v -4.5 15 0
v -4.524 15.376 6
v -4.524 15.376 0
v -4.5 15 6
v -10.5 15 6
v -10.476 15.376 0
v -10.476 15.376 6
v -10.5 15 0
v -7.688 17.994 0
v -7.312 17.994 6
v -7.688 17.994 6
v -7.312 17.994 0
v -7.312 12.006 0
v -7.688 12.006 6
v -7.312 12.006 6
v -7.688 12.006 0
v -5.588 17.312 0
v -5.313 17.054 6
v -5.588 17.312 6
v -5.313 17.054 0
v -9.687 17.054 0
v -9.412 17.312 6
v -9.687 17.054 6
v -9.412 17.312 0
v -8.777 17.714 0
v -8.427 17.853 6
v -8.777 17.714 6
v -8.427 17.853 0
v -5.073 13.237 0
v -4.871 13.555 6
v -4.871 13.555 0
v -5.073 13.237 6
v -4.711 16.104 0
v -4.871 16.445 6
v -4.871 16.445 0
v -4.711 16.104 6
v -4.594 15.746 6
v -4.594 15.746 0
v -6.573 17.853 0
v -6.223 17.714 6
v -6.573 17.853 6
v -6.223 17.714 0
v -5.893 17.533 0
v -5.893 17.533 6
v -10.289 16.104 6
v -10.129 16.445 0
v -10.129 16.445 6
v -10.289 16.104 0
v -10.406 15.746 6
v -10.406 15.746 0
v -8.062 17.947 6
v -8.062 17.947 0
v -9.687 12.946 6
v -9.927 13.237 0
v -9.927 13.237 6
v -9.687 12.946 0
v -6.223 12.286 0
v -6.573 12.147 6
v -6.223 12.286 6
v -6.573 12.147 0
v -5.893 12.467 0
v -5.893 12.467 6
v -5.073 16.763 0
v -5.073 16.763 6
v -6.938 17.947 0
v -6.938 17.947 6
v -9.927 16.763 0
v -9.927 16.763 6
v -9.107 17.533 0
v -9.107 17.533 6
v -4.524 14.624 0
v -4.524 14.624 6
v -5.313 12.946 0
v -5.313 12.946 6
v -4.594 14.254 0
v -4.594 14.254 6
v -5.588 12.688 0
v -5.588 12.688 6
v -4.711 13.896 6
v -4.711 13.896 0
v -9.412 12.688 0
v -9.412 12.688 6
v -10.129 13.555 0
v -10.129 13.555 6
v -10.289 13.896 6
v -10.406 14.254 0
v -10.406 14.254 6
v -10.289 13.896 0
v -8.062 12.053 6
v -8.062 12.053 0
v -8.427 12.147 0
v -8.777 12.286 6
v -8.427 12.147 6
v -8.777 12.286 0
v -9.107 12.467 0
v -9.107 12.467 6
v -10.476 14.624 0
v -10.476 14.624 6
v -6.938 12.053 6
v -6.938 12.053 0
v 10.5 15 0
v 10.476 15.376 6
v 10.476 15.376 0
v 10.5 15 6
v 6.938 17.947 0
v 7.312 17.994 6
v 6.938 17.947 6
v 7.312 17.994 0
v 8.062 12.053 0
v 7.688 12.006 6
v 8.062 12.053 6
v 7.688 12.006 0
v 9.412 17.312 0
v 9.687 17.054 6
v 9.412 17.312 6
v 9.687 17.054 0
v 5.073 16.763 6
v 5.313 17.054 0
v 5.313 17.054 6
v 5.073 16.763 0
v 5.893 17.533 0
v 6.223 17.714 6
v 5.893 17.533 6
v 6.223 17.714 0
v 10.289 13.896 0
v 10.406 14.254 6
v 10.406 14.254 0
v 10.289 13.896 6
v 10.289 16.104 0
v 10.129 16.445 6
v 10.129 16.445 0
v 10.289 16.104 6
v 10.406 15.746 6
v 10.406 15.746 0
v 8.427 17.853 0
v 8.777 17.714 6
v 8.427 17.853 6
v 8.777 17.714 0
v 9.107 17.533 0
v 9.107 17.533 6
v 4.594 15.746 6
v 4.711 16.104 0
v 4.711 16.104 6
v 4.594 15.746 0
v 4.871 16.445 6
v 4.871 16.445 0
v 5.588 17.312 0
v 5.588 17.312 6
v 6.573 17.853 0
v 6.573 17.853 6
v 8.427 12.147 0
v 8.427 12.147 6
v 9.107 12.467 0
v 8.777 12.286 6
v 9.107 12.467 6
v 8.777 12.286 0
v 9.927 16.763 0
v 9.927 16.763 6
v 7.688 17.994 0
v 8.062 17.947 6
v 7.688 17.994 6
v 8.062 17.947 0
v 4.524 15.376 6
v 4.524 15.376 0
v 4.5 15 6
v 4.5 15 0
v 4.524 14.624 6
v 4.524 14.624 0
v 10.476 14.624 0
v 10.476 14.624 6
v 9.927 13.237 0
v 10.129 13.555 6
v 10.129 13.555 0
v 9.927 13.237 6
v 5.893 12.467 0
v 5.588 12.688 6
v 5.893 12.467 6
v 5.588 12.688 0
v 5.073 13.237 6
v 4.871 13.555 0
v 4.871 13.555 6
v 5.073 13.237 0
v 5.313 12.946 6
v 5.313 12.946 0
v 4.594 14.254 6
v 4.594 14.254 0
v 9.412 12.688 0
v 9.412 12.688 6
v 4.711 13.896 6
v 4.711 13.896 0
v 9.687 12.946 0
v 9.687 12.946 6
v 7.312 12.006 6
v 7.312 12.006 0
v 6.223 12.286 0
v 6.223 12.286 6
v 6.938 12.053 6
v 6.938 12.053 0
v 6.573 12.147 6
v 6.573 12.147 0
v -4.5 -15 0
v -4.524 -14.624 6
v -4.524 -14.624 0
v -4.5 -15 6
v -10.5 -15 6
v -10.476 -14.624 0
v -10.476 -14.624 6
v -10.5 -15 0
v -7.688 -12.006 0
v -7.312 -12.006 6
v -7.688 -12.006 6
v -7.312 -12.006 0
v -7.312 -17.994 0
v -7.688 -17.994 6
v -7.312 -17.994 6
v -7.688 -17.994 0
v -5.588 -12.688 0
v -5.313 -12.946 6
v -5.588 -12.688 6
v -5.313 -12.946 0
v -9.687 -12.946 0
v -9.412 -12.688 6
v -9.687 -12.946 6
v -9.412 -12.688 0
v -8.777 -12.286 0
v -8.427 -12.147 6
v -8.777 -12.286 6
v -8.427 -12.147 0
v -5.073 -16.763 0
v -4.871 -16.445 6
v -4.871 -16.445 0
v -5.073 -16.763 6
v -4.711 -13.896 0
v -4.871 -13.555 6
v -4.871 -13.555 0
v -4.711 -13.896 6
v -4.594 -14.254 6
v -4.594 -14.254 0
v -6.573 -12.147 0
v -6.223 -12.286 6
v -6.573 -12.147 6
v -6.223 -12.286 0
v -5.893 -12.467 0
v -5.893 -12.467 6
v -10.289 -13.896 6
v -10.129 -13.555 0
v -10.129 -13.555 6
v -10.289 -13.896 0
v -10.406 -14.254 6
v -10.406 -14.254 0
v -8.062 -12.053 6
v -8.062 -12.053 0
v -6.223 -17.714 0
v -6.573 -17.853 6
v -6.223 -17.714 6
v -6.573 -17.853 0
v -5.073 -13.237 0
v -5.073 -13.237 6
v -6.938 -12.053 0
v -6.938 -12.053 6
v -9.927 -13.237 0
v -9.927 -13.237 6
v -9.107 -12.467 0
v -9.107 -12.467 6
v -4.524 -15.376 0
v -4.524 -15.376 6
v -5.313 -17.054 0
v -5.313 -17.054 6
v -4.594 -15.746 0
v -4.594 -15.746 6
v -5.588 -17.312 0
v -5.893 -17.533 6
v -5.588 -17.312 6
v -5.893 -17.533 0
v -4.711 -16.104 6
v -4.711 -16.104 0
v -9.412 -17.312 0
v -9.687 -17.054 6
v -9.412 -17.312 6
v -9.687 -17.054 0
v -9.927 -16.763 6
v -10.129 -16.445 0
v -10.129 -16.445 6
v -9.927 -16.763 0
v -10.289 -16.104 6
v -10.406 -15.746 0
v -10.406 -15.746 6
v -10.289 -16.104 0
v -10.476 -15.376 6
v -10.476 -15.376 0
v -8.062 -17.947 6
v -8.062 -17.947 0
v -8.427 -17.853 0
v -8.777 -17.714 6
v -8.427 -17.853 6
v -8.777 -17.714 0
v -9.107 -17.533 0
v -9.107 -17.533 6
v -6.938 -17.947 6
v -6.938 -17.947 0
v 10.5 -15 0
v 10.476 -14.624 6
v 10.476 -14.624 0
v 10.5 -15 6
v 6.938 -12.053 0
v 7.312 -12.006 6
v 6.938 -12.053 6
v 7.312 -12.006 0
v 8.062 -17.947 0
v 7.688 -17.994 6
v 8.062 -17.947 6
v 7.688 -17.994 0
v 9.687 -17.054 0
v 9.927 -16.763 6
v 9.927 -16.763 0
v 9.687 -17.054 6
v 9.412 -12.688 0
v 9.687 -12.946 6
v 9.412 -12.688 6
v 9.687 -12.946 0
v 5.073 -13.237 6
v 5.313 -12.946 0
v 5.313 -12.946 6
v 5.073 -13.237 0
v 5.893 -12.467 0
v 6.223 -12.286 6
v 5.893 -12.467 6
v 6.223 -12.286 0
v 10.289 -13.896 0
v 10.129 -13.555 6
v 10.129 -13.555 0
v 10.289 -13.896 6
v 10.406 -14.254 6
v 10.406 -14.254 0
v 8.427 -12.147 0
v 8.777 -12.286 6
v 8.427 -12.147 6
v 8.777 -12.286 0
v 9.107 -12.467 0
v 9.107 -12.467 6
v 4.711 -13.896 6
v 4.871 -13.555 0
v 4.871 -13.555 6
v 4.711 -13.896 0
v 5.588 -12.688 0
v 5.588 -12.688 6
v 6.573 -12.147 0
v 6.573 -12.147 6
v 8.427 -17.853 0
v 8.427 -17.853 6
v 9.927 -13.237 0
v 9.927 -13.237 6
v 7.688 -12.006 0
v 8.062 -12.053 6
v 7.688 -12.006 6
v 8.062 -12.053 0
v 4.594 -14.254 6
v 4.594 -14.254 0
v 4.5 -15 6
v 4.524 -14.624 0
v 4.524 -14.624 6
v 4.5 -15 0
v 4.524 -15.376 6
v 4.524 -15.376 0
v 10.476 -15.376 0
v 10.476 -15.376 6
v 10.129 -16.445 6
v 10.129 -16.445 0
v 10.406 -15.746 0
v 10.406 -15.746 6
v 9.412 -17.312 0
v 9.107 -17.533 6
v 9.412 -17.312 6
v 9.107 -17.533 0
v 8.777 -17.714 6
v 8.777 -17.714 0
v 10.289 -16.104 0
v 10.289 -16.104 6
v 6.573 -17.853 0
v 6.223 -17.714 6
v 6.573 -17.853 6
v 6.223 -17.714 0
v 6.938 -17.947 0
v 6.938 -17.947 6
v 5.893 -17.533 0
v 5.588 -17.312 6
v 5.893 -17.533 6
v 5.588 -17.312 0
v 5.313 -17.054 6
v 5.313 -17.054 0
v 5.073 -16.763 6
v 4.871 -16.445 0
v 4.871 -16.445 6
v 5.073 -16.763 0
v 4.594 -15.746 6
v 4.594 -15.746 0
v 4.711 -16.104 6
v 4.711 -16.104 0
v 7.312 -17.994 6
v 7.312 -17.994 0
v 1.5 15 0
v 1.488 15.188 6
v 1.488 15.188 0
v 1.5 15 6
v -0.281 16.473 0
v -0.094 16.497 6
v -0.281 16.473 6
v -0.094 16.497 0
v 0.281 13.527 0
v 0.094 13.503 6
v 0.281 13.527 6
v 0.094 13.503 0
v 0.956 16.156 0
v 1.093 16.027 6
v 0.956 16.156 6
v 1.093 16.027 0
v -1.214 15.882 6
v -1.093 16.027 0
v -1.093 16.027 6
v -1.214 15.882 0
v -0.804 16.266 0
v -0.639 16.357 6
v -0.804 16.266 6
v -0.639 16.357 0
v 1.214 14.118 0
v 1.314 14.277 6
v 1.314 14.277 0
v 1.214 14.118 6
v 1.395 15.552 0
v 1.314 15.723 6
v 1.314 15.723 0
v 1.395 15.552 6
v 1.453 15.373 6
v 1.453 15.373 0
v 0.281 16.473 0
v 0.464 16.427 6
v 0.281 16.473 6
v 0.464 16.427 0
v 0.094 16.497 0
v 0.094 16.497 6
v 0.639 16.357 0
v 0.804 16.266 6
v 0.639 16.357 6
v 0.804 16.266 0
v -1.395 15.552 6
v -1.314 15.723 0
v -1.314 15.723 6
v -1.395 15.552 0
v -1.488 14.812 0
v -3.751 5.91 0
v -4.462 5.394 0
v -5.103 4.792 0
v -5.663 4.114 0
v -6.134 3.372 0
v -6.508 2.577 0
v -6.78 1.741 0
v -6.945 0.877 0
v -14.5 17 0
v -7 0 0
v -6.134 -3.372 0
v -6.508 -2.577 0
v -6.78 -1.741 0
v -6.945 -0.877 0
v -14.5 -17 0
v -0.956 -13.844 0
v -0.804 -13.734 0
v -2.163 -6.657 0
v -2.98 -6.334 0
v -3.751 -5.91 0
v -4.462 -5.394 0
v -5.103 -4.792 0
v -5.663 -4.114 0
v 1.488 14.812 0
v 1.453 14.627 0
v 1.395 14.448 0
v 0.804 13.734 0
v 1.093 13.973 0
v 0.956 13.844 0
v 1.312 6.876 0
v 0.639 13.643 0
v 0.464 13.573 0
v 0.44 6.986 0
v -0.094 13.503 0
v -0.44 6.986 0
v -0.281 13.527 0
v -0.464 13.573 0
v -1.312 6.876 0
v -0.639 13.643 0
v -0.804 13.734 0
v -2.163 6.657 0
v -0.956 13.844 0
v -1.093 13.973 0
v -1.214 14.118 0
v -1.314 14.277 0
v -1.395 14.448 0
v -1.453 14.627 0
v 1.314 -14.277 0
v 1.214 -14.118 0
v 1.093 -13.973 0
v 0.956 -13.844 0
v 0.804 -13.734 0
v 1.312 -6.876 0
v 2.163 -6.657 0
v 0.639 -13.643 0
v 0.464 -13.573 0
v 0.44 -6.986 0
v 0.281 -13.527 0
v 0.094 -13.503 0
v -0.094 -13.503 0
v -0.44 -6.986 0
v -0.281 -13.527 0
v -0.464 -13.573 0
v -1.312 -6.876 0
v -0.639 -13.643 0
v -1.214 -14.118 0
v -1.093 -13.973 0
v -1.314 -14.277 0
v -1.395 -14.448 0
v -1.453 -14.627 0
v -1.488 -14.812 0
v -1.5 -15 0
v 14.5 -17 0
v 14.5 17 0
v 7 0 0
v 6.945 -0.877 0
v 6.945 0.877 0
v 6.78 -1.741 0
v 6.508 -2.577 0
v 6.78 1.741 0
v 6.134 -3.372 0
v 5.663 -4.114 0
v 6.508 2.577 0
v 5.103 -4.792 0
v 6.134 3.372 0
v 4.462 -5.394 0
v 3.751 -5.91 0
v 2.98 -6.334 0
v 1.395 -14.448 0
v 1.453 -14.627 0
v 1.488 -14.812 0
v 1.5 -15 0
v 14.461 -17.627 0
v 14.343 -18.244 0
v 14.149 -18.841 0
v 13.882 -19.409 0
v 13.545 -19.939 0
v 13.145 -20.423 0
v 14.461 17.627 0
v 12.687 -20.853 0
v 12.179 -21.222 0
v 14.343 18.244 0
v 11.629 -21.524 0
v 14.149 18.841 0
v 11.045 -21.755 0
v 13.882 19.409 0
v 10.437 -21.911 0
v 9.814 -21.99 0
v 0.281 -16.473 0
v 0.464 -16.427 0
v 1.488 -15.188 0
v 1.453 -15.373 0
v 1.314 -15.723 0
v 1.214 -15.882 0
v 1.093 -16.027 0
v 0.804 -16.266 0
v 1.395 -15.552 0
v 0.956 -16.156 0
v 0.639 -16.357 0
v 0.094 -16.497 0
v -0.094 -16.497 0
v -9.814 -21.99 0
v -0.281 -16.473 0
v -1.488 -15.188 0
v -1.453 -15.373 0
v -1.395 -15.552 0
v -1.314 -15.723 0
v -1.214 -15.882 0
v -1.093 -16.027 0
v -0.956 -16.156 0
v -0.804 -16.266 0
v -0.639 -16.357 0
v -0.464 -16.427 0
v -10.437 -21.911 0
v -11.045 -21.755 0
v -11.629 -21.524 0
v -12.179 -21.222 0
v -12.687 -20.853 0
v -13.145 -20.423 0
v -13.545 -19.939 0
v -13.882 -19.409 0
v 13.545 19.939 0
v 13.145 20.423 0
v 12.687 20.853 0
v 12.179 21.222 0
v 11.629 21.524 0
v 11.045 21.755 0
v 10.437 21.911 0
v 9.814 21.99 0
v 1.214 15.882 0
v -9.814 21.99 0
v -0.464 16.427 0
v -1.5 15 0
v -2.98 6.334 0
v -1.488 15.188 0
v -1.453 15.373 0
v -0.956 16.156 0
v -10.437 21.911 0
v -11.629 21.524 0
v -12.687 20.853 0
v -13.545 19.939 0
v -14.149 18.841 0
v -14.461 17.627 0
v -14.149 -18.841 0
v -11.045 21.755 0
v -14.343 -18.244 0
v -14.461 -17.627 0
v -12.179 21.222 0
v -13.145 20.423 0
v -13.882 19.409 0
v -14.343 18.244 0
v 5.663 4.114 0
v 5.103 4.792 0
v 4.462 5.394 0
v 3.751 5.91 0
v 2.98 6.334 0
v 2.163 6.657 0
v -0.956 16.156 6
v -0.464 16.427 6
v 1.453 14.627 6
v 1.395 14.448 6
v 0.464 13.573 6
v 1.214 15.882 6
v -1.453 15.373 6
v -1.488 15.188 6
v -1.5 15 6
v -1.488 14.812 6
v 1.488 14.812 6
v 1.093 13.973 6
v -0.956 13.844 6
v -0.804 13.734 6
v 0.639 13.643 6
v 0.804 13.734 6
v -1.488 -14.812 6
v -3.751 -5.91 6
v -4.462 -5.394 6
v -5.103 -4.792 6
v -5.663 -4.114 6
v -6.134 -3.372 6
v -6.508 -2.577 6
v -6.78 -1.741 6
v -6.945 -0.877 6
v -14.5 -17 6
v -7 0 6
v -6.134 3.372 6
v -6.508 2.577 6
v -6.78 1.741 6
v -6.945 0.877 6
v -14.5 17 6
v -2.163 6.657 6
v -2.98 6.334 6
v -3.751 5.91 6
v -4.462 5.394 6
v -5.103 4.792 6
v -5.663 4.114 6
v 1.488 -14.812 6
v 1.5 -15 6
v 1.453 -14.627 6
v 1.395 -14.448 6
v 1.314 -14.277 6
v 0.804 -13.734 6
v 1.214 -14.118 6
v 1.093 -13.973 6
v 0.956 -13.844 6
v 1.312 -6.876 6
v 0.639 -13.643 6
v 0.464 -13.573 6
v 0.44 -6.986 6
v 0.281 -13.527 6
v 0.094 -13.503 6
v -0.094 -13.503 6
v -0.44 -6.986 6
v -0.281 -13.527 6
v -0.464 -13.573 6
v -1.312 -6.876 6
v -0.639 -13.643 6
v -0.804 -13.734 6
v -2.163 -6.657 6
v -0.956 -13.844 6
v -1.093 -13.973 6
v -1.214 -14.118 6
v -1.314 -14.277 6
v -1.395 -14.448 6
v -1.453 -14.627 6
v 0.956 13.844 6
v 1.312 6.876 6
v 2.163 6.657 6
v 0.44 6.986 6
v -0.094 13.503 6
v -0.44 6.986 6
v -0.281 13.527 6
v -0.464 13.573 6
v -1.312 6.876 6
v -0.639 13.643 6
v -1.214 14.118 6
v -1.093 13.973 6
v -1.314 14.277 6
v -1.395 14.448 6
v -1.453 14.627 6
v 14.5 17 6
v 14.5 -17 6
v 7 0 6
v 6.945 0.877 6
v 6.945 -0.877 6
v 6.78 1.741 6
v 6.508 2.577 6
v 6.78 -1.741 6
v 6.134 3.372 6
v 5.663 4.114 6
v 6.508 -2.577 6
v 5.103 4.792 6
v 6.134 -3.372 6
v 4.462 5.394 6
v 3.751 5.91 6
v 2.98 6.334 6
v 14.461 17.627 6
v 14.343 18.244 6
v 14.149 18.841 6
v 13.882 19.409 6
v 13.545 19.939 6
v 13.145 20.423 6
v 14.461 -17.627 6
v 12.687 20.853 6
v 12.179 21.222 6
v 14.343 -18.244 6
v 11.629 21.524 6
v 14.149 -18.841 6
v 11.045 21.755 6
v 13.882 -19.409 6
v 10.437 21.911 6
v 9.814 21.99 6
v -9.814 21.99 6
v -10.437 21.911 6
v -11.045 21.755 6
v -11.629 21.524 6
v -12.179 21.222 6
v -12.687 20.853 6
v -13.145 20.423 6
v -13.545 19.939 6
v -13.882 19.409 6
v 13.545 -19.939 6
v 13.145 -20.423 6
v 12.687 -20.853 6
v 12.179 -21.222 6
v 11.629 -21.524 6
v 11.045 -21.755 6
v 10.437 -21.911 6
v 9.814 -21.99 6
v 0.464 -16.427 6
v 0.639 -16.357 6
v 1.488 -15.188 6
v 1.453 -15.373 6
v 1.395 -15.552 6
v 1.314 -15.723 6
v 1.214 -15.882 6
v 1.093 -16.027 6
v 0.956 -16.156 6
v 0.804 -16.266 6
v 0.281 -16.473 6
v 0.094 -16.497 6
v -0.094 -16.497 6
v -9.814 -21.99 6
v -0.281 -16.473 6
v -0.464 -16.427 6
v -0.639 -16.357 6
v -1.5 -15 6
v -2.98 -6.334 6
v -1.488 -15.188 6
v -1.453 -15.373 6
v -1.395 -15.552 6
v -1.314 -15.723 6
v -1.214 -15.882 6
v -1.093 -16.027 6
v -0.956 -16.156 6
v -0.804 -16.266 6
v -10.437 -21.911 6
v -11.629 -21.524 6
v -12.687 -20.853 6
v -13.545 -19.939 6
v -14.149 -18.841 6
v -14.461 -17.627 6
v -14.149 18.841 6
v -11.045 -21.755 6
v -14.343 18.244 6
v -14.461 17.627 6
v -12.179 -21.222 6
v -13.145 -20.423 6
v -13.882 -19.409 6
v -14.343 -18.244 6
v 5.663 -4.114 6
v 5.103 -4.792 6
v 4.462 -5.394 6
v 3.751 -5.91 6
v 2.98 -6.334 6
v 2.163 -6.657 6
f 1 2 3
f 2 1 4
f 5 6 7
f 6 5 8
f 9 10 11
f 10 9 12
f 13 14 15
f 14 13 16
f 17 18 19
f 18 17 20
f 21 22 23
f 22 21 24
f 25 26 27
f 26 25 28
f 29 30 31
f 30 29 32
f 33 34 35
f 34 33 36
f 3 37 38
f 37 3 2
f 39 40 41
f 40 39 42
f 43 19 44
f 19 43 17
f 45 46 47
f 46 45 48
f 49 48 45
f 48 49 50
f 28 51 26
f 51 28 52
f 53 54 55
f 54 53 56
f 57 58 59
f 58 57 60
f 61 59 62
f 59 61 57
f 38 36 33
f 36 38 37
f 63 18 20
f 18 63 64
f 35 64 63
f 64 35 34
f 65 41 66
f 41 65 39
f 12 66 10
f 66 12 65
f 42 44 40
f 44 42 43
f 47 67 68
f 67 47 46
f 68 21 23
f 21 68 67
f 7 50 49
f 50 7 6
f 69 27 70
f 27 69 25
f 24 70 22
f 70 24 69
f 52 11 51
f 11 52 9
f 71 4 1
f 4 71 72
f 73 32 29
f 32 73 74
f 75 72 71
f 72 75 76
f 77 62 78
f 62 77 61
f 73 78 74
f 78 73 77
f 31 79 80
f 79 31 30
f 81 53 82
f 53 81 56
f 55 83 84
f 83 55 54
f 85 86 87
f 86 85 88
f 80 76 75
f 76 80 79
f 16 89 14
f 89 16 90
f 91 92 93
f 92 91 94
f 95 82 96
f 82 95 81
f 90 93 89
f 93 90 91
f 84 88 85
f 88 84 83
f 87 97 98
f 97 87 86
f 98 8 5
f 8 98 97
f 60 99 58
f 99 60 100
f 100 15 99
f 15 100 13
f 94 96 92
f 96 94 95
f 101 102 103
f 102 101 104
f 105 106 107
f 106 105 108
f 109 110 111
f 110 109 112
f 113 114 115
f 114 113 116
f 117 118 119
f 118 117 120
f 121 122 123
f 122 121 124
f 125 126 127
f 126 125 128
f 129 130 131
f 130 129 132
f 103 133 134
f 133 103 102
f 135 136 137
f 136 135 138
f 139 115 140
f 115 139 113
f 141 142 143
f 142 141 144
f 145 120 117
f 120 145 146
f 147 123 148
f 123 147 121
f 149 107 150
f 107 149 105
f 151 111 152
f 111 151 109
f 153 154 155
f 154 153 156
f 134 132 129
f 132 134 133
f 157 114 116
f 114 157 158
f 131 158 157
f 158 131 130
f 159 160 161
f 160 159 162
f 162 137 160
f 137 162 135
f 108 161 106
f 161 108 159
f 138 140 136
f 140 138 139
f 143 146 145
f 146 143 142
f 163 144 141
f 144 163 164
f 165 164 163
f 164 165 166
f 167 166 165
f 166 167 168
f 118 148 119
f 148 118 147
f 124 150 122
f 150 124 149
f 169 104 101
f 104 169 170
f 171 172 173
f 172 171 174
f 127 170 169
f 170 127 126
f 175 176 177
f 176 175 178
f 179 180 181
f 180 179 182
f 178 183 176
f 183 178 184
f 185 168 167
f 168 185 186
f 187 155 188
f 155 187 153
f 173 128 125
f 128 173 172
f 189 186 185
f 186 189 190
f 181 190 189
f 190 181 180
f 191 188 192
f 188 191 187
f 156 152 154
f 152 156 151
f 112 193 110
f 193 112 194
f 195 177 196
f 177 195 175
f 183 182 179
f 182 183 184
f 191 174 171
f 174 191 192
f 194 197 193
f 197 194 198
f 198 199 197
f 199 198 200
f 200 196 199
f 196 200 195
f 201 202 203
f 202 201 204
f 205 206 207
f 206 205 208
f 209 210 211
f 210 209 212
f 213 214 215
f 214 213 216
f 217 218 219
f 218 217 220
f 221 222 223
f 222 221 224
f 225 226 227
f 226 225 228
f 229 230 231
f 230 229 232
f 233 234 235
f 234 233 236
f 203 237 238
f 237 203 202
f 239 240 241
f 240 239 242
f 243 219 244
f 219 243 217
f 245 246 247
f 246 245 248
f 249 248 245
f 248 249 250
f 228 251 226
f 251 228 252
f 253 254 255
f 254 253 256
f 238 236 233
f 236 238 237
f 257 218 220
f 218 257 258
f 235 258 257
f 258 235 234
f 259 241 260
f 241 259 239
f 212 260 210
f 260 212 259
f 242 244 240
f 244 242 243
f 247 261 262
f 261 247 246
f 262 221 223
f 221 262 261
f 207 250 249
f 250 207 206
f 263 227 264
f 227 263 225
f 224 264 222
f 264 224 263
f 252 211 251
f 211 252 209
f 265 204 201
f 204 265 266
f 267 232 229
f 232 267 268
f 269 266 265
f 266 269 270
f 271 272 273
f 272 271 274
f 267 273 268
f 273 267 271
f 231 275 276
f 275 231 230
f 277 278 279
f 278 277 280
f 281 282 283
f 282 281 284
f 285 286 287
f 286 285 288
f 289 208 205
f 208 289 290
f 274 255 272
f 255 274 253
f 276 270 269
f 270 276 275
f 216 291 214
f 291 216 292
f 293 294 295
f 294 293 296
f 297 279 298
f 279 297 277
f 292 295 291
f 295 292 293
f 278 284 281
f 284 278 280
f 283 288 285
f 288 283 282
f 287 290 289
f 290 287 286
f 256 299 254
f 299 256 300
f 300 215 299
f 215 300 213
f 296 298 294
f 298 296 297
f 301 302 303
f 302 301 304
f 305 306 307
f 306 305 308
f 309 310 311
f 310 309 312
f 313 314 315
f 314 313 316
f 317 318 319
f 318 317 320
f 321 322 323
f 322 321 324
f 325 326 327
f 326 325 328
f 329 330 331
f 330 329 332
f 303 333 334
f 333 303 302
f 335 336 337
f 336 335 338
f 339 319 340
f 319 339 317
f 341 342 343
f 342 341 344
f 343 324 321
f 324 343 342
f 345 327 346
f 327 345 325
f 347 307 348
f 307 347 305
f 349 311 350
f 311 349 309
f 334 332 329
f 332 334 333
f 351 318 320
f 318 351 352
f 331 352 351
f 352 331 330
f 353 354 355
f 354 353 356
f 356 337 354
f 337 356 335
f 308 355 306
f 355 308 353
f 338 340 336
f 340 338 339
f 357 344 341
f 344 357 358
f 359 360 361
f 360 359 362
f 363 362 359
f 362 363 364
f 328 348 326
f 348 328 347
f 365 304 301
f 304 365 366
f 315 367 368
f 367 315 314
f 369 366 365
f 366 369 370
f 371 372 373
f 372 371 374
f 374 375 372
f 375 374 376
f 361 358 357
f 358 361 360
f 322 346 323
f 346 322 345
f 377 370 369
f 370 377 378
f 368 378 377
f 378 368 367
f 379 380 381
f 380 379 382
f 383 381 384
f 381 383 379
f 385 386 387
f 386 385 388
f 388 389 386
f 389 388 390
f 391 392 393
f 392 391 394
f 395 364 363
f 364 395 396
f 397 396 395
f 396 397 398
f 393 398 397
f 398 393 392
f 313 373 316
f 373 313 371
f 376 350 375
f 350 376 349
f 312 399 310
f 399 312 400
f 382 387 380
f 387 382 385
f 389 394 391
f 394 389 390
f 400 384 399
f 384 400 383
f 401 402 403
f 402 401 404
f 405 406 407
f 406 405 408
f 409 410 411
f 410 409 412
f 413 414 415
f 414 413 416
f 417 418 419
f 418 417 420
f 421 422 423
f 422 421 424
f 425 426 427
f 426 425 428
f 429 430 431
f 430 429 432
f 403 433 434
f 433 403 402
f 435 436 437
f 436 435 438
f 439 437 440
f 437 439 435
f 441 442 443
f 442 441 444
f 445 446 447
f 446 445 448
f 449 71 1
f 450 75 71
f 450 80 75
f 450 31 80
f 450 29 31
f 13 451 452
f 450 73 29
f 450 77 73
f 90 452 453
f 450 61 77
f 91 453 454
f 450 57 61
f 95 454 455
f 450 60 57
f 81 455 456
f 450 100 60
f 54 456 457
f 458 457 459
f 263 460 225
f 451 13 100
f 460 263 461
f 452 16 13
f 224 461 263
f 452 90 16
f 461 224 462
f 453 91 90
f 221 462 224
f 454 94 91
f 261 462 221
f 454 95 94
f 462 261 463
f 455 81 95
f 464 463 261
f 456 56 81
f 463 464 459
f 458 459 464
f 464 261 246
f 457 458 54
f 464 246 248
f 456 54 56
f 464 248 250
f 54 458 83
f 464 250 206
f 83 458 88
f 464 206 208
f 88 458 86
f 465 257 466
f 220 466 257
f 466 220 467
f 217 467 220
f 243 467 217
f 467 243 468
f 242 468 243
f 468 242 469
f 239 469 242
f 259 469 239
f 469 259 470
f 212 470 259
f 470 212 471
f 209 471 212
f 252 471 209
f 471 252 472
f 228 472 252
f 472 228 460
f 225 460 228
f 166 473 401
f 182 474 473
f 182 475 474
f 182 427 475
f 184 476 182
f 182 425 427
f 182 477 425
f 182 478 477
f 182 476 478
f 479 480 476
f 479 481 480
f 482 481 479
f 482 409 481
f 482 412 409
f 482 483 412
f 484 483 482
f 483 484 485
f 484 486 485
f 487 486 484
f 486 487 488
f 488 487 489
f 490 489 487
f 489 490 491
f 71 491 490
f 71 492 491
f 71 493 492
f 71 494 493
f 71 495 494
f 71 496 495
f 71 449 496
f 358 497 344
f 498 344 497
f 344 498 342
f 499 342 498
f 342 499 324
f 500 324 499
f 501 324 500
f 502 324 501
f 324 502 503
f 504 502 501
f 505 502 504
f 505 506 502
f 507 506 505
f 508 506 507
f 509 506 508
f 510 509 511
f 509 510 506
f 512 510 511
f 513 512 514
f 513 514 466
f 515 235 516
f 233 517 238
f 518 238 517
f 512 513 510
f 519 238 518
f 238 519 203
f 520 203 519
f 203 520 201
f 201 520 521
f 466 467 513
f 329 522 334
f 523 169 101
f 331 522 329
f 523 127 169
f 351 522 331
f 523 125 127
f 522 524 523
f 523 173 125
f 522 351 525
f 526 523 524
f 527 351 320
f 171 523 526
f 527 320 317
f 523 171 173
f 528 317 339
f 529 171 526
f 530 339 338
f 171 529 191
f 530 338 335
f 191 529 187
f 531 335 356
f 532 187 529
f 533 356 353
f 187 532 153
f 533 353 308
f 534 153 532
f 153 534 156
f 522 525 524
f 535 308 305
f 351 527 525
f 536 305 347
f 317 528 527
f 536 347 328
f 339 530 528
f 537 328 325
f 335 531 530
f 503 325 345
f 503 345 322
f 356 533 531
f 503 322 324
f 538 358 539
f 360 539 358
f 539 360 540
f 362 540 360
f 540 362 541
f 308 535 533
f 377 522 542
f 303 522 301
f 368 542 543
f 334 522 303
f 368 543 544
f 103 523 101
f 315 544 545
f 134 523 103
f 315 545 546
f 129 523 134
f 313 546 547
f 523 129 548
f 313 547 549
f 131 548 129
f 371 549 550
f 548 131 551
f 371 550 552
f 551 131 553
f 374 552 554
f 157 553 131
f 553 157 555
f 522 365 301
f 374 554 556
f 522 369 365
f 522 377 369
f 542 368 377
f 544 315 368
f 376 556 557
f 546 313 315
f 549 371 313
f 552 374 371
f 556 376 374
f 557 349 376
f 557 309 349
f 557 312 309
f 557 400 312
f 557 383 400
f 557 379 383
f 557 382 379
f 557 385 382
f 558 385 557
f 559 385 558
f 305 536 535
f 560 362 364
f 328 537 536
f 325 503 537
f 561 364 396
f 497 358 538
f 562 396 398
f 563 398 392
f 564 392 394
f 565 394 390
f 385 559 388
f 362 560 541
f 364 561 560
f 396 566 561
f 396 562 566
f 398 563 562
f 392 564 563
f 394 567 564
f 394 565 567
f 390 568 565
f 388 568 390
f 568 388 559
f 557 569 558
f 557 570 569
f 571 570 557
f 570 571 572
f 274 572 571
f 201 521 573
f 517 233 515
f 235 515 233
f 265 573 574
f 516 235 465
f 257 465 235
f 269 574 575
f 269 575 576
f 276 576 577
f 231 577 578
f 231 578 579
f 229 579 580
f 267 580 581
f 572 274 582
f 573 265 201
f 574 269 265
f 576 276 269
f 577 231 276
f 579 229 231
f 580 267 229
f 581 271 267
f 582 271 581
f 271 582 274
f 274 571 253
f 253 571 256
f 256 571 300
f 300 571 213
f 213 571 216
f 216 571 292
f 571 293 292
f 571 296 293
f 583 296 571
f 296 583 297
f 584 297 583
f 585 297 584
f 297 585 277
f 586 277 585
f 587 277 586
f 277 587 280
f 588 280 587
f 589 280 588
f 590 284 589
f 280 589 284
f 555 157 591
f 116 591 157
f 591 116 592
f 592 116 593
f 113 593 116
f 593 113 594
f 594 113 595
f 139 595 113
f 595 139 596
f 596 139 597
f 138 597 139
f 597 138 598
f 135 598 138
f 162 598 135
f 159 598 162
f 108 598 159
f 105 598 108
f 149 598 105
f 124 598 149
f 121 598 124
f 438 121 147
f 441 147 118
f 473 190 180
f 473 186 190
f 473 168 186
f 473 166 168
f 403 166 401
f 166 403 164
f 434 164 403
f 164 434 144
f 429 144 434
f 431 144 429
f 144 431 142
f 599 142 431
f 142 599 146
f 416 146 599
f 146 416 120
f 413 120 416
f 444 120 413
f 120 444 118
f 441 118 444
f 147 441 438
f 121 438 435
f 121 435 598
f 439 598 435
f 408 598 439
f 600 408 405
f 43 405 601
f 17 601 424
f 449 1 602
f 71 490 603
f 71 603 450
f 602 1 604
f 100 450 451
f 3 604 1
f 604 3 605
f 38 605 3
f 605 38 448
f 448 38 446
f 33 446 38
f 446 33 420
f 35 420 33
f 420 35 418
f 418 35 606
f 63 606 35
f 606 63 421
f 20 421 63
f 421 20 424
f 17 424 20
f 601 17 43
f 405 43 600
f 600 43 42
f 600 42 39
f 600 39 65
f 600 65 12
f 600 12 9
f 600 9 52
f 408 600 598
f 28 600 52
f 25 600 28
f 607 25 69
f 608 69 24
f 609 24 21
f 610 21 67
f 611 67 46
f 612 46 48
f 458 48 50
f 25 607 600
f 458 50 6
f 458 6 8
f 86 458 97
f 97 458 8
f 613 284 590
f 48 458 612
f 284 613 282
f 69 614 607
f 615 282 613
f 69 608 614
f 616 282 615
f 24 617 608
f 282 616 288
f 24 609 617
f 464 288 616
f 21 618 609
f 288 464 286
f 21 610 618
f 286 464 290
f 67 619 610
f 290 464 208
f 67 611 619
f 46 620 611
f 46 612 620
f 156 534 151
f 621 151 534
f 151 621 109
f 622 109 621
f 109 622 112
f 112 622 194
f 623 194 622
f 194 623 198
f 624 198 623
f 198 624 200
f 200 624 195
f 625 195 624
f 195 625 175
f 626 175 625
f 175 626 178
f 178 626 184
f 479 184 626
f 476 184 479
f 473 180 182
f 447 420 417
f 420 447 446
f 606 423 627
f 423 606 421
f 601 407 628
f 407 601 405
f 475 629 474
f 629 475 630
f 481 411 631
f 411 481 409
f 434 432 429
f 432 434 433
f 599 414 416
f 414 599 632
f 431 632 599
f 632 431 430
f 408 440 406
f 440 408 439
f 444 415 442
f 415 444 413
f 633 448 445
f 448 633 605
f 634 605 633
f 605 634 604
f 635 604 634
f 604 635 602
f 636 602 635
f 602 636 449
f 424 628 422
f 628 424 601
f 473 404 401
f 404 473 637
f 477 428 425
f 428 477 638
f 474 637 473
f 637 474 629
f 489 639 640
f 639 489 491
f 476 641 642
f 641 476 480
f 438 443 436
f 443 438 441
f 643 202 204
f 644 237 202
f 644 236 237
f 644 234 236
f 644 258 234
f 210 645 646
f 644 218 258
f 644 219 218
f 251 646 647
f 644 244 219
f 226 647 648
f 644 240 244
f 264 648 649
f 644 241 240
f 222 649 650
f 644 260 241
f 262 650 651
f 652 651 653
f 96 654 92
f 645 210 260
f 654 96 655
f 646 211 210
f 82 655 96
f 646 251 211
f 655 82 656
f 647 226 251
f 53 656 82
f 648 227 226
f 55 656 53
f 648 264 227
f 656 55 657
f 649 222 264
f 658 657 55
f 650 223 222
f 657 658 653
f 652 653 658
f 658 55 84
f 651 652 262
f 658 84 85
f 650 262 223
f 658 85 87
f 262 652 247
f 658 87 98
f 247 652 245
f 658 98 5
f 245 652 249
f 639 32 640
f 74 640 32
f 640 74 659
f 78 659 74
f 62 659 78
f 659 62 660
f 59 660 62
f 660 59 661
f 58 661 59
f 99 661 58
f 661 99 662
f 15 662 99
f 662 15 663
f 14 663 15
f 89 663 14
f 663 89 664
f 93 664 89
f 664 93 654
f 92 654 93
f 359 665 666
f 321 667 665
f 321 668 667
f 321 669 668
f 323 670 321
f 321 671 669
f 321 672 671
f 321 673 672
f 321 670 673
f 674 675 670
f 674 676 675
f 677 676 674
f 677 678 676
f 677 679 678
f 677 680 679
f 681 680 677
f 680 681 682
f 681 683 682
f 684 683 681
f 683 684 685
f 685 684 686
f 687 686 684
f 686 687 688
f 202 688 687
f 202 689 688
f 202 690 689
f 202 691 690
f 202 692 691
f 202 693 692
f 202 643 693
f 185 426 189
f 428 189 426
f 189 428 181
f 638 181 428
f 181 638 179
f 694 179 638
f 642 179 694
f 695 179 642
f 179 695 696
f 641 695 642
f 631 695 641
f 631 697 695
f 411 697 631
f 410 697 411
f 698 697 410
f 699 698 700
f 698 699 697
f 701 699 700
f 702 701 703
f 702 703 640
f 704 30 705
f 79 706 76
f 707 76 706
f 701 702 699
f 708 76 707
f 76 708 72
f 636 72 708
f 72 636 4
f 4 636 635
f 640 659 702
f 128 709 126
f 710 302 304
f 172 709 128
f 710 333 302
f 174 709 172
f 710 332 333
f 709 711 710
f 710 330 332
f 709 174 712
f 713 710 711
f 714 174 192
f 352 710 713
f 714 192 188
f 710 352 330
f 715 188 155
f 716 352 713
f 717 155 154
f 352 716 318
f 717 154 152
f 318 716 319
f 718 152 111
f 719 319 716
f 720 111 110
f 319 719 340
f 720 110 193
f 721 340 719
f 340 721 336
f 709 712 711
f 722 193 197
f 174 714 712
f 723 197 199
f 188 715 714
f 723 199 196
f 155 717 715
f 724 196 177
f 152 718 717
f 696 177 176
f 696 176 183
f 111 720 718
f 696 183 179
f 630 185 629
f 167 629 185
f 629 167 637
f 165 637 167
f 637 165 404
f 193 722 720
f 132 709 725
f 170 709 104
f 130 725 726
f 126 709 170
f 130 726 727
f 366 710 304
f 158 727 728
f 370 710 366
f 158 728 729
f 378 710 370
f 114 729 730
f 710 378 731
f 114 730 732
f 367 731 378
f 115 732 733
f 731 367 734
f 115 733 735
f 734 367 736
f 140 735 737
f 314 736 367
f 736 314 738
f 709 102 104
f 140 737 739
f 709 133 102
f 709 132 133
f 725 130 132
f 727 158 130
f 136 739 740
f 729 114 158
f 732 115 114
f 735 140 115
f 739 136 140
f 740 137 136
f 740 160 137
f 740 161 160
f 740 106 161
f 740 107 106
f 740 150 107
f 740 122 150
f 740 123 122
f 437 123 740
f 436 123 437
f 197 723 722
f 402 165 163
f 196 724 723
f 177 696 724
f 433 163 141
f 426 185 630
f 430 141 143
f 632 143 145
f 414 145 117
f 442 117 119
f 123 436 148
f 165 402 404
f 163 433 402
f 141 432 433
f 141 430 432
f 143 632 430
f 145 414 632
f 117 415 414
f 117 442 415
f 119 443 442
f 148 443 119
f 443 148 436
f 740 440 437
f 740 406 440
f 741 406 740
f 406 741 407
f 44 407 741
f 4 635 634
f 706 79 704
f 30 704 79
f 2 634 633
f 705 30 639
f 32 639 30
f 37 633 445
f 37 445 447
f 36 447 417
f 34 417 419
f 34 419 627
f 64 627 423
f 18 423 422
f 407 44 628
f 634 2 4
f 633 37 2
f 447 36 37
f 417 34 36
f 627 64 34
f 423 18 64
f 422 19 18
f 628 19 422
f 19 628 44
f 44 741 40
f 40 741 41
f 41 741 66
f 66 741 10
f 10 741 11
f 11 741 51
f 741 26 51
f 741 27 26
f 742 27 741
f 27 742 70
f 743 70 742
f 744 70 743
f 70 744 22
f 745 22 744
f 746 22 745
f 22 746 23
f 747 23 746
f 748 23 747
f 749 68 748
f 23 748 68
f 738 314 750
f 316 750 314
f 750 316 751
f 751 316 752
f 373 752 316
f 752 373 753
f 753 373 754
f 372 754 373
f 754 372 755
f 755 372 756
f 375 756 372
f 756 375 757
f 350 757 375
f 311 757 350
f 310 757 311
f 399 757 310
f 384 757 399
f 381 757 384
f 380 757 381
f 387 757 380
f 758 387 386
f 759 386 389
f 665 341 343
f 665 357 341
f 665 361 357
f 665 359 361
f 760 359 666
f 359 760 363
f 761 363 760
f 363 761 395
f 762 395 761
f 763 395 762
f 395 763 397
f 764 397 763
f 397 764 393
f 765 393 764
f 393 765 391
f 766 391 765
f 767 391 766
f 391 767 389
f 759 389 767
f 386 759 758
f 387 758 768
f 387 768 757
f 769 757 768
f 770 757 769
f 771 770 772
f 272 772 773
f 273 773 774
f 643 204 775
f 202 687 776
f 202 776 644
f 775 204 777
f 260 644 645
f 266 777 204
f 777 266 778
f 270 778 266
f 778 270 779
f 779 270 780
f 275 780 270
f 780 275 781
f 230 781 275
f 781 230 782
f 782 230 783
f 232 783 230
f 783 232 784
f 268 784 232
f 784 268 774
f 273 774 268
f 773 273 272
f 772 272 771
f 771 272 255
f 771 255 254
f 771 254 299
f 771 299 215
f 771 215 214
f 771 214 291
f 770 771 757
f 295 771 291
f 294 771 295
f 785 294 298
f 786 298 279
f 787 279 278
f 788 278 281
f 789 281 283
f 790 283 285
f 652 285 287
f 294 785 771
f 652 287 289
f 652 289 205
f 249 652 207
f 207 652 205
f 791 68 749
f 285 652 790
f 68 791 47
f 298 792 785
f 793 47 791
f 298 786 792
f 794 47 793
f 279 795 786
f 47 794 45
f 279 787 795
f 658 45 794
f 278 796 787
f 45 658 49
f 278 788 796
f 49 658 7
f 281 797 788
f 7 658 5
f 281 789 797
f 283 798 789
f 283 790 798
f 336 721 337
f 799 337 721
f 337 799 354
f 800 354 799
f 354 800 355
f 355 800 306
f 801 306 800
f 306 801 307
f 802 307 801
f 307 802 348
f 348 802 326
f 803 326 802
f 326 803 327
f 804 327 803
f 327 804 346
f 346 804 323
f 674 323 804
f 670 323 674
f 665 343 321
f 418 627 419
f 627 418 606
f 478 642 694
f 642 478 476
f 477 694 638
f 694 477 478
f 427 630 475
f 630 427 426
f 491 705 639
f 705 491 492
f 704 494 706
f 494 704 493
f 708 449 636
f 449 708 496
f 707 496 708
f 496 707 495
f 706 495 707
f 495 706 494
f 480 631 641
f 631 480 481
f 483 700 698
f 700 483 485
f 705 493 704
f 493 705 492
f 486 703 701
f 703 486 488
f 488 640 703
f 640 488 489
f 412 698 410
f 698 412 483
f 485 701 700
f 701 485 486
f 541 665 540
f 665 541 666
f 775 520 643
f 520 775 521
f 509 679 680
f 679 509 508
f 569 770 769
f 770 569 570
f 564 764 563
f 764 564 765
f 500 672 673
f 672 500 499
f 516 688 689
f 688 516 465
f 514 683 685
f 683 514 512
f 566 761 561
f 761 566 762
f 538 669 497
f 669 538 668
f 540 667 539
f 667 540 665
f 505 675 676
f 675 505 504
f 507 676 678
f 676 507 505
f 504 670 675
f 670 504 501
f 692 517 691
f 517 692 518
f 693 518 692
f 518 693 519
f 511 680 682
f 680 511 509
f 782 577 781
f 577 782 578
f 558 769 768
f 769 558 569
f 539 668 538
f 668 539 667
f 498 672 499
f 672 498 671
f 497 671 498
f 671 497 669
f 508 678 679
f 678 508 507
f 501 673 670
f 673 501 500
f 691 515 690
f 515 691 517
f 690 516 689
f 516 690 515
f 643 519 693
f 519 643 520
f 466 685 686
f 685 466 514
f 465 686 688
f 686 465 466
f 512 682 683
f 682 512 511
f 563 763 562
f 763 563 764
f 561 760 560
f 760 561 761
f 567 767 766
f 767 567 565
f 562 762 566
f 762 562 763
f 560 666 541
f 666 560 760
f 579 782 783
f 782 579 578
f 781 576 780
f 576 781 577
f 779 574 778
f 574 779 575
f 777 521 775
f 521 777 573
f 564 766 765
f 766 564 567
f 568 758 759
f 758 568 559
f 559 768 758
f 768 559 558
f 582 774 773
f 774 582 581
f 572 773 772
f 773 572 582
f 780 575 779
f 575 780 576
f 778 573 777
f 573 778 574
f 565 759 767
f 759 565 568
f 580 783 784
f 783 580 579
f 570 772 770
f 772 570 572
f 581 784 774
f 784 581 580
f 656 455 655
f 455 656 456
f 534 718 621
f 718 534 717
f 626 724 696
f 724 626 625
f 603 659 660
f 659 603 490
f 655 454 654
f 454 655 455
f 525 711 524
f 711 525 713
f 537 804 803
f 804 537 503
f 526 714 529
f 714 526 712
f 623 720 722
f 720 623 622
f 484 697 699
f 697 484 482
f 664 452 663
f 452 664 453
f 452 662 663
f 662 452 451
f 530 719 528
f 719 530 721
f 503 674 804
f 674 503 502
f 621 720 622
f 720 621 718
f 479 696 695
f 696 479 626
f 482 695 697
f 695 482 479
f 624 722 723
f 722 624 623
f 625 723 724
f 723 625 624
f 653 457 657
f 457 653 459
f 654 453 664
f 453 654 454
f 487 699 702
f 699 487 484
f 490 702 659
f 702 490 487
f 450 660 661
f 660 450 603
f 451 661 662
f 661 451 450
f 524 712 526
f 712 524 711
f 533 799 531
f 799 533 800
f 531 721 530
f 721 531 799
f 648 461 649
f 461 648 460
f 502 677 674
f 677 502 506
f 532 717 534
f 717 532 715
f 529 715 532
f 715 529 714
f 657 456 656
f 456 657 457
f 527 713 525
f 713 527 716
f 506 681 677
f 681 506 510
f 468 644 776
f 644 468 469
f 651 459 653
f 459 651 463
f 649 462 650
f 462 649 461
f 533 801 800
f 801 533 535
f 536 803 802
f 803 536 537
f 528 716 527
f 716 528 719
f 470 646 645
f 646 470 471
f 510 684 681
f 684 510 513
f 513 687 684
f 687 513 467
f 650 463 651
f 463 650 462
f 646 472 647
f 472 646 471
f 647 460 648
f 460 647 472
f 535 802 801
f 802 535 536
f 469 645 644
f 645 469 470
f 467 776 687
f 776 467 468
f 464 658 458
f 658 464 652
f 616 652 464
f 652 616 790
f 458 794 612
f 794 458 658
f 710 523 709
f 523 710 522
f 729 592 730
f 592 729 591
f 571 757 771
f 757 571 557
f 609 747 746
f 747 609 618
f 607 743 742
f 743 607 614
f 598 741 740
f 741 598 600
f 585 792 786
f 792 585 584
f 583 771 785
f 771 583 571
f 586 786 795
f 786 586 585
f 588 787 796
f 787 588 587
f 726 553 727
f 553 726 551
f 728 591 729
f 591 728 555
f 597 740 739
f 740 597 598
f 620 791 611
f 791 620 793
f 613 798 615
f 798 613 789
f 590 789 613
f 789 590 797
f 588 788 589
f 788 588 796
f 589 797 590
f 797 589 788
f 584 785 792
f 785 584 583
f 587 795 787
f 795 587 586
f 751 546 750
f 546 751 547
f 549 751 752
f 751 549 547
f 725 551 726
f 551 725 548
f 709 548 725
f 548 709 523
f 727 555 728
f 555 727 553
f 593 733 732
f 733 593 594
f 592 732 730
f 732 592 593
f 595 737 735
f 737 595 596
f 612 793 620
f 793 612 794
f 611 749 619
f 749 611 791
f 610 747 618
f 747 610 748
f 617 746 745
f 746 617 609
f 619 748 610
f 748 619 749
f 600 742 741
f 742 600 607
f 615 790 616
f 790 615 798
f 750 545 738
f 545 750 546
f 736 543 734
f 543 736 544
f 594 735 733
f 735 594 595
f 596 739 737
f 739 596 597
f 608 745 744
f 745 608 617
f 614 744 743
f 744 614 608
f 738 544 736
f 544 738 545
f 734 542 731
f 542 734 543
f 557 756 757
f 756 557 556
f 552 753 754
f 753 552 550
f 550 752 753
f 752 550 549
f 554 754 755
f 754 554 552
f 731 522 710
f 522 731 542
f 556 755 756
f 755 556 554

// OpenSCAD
$fn = 50;


difference() {
	union() {
		hull() {
			translate(v = [-9.5000000000, 17.0000000000, 0]) {
				cylinder(h = 6, r = 5);
			}
			translate(v = [9.5000000000, 17.0000000000, 0]) {
				cylinder(h = 6, r = 5);
			}
			translate(v = [-9.5000000000, -17.0000000000, 0]) {
				cylinder(h = 6, r = 5);
			}
			translate(v = [9.5000000000, -17.0000000000, 0]) {
				cylinder(h = 6, r = 5);
			}
		}
	}
	union() {
		#translate(v = [-7.5000000000, 15.0000000000, 0]) {
			cylinder(h = 6, r = 3.0000000000);
		}
		#translate(v = [7.5000000000, 15.0000000000, 0]) {
			cylinder(h = 6, r = 3.0000000000);
		}
		#translate(v = [-7.5000000000, -15.0000000000, 0]) {
			cylinder(h = 6, r = 3.0000000000);
		}
		#translate(v = [7.5000000000, -15.0000000000, 0]) {
			cylinder(h = 6, r = 3.0000000000);
		}
		#translate(v = [-7.5000000000, -15.0000000000, -100.0000000000]) {
			cylinder(h = 200, r = 3.0000000000);
		}
		#translate(v = [-7.5000000000, 15.0000000000, -100.0000000000]) {
			cylinder(h = 200, r = 3.0000000000);
		}
		#translate(v = [7.5000000000, -15.0000000000, -100.0000000000]) {
			cylinder(h = 200, r = 3.0000000000);
		}
		#translate(v = [7.5000000000, 15.0000000000, -100.0000000000]) {
			cylinder(h = 200, r = 3.0000000000);
		}
		#translate(v = [-7.5000000000, 15.0000000000, 0]) {
			cylinder(h = 6, r = 1.5000000000);
		}
		#translate(v = [0.0000000000, 15.0000000000, 0]) {
			cylinder(h = 6, r = 1.5000000000);
		}
		#translate(v = [7.5000000000, 15.0000000000, 0]) {
			cylinder(h = 6, r = 1.5000000000);
		}
		#translate(v = [-7.5000000000, -15.0000000000, 0]) {
			cylinder(h = 6, r = 1.5000000000);
		}
		#translate(v = [0.0000000000, -15.0000000000, 0]) {
			cylinder(h = 6, r = 1.5000000000);
		}
		#translate(v = [7.5000000000, -15.0000000000, 0]) {
			cylinder(h = 6, r = 1.5000000000);
		}
		#translate(v = [-7.5000000000, 15.0000000000, 0]) {
			cylinder(h = 6, r = 1.5000000000);
		}
		#translate(v = [0.0000000000, 15.0000000000, 0]) {
			cylinder(h = 6, r = 1.5000000000);
		}
		#translate(v = [7.5000000000, 15.0000000000, 0]) {
			cylinder(h = 6, r = 1.5000000000);
		}
		#translate(v = [-7.5000000000, -15.0000000000, 0]) {
			cylinder(h = 6, r = 1.5000000000);
		}
		#translate(v = [0.0000000000, -15.0000000000, 0]) {
			cylinder(h = 6, r = 1.5000000000);
		}
		#translate(v = [7.5000000000, -15.0000000000, 0]) {
			cylinder(h = 6, r = 1.5000000000);
		}
		#translate(v = [-7.5000000000, 15.0000000000, 0]) {
			cylinder(h = 6, r = 1.5000000000);
		}
		#translate(v = [0.0000000000, 15.0000000000, 0]) {
			cylinder(h = 6, r = 1.5000000000);
		}
		#translate(v = [7.5000000000, 15.0000000000, 0]) {
			cylinder(h = 6, r = 1.5000000000);
		}
		#translate(v = [-7.5000000000, -15.0000000000, 0]) {
			cylinder(h = 6, r = 1.5000000000);
		}
		#translate(v = [0.0000000000, -15.0000000000, 0]) {
			cylinder(h = 6, r = 1.5000000000);
		}
		#translate(v = [7.5000000000, -15.0000000000, 0]) {
			cylinder(h = 6, r = 1.5000000000);
		}
		#cylinder(h = 6, r = 7.0000000000);
	}
}
